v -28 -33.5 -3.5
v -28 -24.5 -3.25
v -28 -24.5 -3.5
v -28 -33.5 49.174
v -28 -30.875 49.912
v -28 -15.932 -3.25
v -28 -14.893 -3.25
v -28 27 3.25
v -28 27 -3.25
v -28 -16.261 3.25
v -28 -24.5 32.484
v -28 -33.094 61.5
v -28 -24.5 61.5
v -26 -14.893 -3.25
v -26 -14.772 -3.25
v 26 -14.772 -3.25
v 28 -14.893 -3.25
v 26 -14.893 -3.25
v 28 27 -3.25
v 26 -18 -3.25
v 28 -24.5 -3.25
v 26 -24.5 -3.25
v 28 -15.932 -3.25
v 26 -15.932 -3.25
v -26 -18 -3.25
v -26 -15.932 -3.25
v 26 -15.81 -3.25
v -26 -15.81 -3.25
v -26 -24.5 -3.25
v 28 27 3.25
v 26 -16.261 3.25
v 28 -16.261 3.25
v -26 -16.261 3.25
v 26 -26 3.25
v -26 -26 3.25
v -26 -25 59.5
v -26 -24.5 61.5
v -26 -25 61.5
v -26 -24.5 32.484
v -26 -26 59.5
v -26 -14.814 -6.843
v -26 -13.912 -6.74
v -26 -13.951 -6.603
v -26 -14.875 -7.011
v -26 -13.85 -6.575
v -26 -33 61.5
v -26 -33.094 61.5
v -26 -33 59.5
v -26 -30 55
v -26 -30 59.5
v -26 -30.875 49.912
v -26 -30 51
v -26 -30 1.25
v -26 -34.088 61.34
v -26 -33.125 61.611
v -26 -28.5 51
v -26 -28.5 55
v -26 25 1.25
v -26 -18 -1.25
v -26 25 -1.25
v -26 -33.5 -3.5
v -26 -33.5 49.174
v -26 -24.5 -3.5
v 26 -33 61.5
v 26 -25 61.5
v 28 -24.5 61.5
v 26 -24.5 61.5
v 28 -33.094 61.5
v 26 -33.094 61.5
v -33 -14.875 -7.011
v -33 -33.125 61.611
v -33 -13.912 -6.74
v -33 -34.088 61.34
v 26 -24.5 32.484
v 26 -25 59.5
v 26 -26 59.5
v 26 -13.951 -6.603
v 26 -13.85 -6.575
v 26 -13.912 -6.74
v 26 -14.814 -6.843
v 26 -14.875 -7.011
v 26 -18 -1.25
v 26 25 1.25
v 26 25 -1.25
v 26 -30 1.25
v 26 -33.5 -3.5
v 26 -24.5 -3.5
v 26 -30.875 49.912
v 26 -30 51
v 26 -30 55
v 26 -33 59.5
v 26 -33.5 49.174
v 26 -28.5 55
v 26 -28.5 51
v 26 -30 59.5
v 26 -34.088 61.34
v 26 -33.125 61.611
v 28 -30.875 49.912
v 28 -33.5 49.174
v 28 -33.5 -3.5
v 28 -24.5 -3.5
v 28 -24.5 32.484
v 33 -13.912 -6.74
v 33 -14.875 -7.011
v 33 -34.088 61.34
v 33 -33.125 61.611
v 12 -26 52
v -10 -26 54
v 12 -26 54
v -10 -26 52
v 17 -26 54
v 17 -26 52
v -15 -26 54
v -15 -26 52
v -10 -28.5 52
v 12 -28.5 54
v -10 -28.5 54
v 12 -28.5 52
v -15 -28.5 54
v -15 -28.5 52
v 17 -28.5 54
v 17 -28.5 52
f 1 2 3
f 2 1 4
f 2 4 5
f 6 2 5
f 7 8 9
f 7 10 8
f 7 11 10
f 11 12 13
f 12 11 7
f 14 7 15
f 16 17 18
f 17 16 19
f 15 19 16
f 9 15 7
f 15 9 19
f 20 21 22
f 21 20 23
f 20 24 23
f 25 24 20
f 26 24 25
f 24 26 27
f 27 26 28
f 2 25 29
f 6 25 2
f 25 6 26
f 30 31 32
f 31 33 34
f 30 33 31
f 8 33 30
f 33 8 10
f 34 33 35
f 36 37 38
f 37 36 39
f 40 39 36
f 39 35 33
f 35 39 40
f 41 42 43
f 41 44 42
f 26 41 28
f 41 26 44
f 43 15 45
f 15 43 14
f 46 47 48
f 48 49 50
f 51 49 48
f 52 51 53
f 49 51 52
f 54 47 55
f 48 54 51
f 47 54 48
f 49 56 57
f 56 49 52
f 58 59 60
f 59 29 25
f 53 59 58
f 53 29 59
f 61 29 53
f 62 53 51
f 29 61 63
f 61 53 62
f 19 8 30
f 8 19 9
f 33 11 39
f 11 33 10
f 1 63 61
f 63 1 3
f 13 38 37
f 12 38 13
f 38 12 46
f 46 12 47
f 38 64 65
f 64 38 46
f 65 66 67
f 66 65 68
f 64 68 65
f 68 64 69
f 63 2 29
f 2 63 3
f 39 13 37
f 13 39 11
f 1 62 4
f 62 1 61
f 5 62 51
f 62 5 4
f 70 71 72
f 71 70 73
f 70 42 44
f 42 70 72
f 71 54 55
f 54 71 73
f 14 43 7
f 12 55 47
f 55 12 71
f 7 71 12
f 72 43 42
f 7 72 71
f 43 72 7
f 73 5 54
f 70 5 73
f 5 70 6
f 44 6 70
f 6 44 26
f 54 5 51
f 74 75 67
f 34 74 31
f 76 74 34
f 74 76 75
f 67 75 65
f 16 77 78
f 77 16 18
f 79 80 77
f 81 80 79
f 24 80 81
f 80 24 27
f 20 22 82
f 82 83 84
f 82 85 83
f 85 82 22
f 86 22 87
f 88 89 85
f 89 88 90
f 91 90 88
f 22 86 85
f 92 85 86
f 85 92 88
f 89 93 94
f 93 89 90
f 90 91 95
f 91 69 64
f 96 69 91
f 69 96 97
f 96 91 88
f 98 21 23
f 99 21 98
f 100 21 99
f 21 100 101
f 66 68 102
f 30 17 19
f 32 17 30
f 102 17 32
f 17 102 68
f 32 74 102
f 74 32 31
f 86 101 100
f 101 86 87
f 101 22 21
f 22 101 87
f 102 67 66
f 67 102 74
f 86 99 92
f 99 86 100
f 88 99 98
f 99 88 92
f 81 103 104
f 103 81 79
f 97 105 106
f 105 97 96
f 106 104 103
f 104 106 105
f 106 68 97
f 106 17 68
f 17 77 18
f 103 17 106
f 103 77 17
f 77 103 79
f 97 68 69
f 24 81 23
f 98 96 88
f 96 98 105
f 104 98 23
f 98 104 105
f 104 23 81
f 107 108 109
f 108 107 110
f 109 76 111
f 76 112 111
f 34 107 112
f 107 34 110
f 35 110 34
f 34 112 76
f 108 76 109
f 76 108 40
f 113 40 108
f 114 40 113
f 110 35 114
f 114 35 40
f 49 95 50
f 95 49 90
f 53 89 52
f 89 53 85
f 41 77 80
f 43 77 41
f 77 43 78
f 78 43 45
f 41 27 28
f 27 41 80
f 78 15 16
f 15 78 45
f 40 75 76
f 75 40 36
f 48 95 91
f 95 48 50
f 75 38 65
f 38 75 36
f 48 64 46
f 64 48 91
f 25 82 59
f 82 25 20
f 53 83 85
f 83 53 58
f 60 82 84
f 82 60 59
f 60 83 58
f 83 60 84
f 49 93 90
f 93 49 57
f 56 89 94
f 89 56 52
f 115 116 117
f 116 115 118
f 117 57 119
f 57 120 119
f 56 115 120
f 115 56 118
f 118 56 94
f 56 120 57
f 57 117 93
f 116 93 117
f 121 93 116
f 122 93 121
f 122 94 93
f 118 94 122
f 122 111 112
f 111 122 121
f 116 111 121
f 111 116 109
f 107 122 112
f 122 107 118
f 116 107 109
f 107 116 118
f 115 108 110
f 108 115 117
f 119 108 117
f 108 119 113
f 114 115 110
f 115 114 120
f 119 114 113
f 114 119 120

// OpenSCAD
/*
Tray for Music Cubes
*/
printBody     = true;
printLidLeft  = true;
printLidRight = true;
printCube     = false;
printRFIDpcb  = false;
cubeX         = 54;
wallThickness = 2;
$fn = 30;

musicCube = "./STL/cube_5x5.stl";

module printBodyPart()  // RED
{
  difference()
  {
    union()
    {
      //-- Floor
      translate([0,-28,(cubeX/2)+2]) color("red") cube([cubeX-2,4, cubeX+10], true);
      //-- back RFID 
      cube([cubeX-2,cubeX, (wallThickness*3)+0.5], true); 
      translate([0,-15,-4.3]) rotate([15.5,0,0]) color("gray") cube([cubeX-2,1,5], true);
      translate([0,-29,cubeX+6.5]) color("blue") cube([cubeX-2,8,2], true);
      
    }

    //-- back RFID open
    translate([0,-25,-2.5]) color("green") cube([cubeX+15,14, 3.5], true); 
    //-- RFID slot
    translate([0,-7,0]) color("blue") cube([cubeX+5,cubeX+10, 2.5], true); 
    //-- LED strip
    translate([-30, -30.5, 51])  color("orange") cube([60,2,4]);    
    //-- White LED 1   
    translate([12, -34.5, 52]) color("red") cube([5, 10, 2]);       
    //-- White LED 2
    translate([-15,-34.5, 52]) color("red") cube([5, 10, 2]);      
  }

} //  printBodyPart()


module printLidLeft()
{
  difference()
  {
    union()
    {
      //-- floor RFID
      translate([0,-2.5,0]) color("red") cube([2,cubeX+3.0, 6.5], true);  
      //-- sloped side Wall      
      translate([-1, -15.5, 3]) rotate([0,180,180]) prism(2,15.5,55);  
      //-- small side wall
      translate([0,-30,-29]) color("yellow") cube([2,9,cubeX+11], true);
    }
    translate([0,-38,-56.5]) rotate([-15.7,0,0]) color("brown") cube([3,10,16], true);
  }
  //-- slope connector
  translate([2.5,-25,-27.3]) rotate([-15.7,0,0]) color("black") cube([7,1,cubeX+17], true);
  
} //  printLidLeft()


module printLidRight()
{
  difference()
  {
    union()
    {
      //-- floor RFID
      translate([0,-2.5,0]) color("red") cube([2,cubeX+3.0, 6.5], true);  
      //----------x,   y,   z --side Wall      
      translate([-1, -15.5, 3]) rotate([0,180,180]) prism(2,15.5,55);  
      //-- small side wall
      translate([0,-30,-29]) color("yellow") cube([2,9,cubeX+11], true);
    }
    //-----    
    translate([0,-38,-56.5]) rotate([-15.7,0,0]) color("brown") cube([3,10,16], true);
  }
  //--------- x,  y,   z  -- slope connector
  translate([-2.5,-25,-27.3]) rotate([-15.7,0,0]) color("black") cube([7,1,cubeX+17], true);
 
  
} //  printLidRight()


module prism(l, w, h)
{
       polyhedron(
               points=[[0,0,0], [l,0,0], [l,w,0], [0,w,0], [0,w,h], [l,w,h]],
               faces=[[0,1,2,3],[5,4,3,2],[0,4,5,1],[0,3,4],[5,2,1]]
               );
} //  prism()

//=============== main ======================

if (printCube)
{
  translate([0,0,25+4]) 
  {
    color("gray") import(musicCube);
  }

//  translate([0,-7,0]) color("gray") cube([40, 60, 2.5], true);
}

if (printRFIDpcb)
{
  translate([0,-7,0]) color("gray") cube([40, 60, 2.5], true);
}

if (printBody)
{
  translate([0,0,0])
  {
    //color("red")
    printBodyPart();
  }
}

offset = 0.0;

if (printLidLeft)
{
  rotate([180,0,180])
  {
    translate([(27+offset), 1, 0])
    {
      //color("blue")
      printLidLeft();
    }
  } // rotate
}

if (printLidRight)
{
  rotate([180,0,180])
  {
    translate([(-27-offset), 1, 0])
    {
      //color("gray")
      printLidRight();
    }
  } // rotate
}
  
